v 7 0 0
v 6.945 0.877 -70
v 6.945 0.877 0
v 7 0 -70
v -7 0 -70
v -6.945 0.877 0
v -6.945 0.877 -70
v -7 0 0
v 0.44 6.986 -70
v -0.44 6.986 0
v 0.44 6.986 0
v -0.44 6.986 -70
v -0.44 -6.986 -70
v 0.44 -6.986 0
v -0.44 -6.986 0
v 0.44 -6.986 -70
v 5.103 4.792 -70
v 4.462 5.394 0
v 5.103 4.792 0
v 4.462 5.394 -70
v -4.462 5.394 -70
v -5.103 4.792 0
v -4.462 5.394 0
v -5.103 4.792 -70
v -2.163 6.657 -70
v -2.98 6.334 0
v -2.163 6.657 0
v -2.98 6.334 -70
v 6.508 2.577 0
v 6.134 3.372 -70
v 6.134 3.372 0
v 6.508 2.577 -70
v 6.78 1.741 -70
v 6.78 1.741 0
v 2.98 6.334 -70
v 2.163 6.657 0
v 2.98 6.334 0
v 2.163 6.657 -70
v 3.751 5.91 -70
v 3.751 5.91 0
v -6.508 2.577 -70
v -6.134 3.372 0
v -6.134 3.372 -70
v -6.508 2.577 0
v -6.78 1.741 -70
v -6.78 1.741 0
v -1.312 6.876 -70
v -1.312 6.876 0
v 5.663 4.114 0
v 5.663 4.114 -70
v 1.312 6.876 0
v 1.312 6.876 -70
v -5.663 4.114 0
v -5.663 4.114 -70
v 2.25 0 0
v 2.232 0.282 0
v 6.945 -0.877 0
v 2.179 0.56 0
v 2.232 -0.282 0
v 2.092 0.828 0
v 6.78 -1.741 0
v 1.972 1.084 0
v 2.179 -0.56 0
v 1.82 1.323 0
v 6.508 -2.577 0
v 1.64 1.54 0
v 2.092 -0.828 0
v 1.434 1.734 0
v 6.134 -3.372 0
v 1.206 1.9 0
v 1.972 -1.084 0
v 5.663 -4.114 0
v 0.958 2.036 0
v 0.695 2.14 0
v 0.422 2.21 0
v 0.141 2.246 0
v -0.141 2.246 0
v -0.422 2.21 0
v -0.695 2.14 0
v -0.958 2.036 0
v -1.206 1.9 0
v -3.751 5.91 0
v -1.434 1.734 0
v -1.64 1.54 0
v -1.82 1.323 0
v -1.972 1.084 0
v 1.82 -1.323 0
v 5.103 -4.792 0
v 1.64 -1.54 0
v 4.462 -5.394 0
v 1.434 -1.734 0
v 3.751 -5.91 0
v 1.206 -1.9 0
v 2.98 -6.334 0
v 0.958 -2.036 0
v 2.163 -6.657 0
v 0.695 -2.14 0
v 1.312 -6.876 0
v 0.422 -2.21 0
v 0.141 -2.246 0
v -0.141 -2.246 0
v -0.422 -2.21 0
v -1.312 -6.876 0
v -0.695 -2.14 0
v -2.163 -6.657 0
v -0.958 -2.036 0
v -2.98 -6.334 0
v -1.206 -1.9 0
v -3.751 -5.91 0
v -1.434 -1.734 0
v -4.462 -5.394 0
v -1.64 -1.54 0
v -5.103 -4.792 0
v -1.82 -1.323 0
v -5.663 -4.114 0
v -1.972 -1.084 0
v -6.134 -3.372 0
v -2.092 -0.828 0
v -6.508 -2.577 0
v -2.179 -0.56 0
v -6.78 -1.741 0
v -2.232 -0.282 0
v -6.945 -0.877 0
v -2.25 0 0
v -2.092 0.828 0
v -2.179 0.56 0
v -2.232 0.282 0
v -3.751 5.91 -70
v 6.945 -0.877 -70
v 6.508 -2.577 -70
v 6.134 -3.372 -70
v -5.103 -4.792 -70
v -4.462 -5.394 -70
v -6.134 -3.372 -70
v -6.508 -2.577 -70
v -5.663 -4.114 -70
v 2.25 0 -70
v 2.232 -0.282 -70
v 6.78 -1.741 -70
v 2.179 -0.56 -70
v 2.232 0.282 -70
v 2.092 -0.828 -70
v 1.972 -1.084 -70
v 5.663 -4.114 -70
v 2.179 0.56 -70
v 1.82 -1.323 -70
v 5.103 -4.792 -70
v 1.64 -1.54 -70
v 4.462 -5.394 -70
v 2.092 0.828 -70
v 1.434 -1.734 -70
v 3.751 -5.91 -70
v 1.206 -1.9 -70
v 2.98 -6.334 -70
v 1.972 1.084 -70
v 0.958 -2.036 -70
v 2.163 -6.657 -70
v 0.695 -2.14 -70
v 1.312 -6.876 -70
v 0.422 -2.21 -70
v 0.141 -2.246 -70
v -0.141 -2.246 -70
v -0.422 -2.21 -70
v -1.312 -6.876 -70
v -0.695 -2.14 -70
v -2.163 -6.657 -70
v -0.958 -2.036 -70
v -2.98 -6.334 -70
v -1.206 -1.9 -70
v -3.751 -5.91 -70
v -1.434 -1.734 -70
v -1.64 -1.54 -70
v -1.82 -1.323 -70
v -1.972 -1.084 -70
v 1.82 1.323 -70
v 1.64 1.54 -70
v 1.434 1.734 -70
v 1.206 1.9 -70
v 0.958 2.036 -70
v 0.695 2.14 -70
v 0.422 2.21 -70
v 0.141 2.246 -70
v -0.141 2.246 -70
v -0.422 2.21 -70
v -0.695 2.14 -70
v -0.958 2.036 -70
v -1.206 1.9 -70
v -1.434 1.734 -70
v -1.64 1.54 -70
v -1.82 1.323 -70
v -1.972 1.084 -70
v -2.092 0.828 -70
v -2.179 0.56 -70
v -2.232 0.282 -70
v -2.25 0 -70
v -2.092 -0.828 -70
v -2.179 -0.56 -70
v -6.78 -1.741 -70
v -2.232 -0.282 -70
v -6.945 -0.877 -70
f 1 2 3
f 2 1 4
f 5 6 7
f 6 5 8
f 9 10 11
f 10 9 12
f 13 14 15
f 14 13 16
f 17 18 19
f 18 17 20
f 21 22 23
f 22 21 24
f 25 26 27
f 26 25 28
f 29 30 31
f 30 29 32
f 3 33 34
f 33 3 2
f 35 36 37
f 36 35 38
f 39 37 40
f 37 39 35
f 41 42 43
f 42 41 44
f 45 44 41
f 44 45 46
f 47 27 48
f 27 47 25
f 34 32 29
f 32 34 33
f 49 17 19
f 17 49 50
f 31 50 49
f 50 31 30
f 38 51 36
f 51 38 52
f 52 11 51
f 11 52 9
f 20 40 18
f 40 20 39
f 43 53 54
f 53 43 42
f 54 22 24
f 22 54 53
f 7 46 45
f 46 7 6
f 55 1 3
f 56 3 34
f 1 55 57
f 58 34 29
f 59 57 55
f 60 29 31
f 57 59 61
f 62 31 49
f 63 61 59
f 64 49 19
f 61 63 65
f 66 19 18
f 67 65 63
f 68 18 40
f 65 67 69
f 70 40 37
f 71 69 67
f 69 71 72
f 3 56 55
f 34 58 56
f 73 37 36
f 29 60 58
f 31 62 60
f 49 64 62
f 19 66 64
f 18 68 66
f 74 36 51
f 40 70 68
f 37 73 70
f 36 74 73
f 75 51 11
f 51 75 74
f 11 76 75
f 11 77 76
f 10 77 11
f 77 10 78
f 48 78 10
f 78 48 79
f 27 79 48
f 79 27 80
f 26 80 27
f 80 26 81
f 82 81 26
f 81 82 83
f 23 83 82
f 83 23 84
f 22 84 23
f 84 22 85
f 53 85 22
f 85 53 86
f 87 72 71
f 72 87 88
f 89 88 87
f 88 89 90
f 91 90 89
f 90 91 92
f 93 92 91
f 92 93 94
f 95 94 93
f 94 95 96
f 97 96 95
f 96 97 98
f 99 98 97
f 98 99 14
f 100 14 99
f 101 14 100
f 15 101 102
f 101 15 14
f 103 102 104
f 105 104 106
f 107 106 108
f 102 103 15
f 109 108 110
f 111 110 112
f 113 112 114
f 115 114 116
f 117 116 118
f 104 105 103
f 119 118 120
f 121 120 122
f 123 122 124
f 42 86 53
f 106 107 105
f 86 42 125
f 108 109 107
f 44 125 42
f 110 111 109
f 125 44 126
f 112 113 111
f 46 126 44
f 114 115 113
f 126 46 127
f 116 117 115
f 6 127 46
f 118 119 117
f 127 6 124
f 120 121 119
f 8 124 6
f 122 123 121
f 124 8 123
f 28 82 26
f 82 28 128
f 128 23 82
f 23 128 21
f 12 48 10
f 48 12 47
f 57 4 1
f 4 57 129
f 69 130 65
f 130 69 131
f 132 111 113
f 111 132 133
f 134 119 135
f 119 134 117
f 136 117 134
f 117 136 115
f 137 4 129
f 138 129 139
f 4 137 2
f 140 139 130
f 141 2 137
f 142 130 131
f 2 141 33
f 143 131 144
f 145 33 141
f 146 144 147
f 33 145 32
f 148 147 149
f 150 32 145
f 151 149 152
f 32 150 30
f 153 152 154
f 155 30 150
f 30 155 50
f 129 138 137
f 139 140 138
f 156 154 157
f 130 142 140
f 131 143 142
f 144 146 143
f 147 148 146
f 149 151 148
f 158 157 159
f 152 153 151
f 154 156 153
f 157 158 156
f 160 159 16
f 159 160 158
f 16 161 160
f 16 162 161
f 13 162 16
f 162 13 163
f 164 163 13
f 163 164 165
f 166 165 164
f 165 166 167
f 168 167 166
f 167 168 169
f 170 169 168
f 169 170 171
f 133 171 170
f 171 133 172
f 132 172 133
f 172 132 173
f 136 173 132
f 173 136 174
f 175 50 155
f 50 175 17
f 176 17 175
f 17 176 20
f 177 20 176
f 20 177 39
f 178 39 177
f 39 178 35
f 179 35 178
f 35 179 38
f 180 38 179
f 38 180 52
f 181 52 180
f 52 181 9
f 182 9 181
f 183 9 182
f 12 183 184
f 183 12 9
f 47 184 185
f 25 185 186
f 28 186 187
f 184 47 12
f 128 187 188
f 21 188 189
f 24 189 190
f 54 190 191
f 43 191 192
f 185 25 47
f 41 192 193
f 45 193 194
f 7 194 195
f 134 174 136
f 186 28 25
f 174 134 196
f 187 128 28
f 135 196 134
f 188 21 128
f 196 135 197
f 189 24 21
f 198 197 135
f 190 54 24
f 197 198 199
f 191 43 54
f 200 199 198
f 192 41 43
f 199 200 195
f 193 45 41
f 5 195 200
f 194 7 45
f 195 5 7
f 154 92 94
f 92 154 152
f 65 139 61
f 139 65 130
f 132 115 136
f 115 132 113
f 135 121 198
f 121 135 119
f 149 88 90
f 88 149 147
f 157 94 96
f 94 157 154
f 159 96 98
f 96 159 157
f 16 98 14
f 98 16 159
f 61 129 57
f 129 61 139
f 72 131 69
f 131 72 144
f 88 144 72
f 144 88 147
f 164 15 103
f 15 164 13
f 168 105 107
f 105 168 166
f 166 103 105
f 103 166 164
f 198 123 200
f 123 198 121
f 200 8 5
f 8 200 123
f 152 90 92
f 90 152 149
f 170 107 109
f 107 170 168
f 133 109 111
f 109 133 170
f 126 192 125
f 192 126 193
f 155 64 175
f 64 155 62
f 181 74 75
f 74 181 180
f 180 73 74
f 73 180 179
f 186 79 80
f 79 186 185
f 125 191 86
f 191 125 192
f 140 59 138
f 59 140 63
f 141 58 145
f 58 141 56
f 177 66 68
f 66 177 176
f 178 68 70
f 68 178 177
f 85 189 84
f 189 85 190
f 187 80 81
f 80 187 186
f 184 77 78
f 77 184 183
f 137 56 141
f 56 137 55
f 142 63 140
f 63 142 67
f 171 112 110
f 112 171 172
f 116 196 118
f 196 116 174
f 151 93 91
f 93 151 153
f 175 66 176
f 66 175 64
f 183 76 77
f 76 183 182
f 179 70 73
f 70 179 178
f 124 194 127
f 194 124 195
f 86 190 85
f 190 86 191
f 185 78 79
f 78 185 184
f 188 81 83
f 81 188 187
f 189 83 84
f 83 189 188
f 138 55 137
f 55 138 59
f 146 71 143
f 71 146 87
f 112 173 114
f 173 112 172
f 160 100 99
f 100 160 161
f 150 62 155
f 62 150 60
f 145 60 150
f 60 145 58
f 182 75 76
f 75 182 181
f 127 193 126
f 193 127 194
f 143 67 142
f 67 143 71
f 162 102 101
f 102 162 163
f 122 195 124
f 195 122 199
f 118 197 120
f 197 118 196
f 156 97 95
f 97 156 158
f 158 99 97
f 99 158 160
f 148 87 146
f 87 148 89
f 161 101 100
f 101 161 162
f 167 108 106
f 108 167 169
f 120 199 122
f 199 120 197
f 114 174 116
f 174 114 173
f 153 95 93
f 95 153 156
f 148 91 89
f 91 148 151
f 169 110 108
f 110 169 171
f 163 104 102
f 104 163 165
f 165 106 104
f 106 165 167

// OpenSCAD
$fn = 50;


difference() {
	union() {
		translate(v = [0, 0, -70.0000000000]) {
			cylinder(h = 70, r = 7.0000000000);
		}
		cylinder(h = 0, r = 17.0000000000);
	}
	union() {
		#translate(v = [0, 0, -70]) {
			cylinder(h = 70, r = 2.2500000000);
		}
	}
}
